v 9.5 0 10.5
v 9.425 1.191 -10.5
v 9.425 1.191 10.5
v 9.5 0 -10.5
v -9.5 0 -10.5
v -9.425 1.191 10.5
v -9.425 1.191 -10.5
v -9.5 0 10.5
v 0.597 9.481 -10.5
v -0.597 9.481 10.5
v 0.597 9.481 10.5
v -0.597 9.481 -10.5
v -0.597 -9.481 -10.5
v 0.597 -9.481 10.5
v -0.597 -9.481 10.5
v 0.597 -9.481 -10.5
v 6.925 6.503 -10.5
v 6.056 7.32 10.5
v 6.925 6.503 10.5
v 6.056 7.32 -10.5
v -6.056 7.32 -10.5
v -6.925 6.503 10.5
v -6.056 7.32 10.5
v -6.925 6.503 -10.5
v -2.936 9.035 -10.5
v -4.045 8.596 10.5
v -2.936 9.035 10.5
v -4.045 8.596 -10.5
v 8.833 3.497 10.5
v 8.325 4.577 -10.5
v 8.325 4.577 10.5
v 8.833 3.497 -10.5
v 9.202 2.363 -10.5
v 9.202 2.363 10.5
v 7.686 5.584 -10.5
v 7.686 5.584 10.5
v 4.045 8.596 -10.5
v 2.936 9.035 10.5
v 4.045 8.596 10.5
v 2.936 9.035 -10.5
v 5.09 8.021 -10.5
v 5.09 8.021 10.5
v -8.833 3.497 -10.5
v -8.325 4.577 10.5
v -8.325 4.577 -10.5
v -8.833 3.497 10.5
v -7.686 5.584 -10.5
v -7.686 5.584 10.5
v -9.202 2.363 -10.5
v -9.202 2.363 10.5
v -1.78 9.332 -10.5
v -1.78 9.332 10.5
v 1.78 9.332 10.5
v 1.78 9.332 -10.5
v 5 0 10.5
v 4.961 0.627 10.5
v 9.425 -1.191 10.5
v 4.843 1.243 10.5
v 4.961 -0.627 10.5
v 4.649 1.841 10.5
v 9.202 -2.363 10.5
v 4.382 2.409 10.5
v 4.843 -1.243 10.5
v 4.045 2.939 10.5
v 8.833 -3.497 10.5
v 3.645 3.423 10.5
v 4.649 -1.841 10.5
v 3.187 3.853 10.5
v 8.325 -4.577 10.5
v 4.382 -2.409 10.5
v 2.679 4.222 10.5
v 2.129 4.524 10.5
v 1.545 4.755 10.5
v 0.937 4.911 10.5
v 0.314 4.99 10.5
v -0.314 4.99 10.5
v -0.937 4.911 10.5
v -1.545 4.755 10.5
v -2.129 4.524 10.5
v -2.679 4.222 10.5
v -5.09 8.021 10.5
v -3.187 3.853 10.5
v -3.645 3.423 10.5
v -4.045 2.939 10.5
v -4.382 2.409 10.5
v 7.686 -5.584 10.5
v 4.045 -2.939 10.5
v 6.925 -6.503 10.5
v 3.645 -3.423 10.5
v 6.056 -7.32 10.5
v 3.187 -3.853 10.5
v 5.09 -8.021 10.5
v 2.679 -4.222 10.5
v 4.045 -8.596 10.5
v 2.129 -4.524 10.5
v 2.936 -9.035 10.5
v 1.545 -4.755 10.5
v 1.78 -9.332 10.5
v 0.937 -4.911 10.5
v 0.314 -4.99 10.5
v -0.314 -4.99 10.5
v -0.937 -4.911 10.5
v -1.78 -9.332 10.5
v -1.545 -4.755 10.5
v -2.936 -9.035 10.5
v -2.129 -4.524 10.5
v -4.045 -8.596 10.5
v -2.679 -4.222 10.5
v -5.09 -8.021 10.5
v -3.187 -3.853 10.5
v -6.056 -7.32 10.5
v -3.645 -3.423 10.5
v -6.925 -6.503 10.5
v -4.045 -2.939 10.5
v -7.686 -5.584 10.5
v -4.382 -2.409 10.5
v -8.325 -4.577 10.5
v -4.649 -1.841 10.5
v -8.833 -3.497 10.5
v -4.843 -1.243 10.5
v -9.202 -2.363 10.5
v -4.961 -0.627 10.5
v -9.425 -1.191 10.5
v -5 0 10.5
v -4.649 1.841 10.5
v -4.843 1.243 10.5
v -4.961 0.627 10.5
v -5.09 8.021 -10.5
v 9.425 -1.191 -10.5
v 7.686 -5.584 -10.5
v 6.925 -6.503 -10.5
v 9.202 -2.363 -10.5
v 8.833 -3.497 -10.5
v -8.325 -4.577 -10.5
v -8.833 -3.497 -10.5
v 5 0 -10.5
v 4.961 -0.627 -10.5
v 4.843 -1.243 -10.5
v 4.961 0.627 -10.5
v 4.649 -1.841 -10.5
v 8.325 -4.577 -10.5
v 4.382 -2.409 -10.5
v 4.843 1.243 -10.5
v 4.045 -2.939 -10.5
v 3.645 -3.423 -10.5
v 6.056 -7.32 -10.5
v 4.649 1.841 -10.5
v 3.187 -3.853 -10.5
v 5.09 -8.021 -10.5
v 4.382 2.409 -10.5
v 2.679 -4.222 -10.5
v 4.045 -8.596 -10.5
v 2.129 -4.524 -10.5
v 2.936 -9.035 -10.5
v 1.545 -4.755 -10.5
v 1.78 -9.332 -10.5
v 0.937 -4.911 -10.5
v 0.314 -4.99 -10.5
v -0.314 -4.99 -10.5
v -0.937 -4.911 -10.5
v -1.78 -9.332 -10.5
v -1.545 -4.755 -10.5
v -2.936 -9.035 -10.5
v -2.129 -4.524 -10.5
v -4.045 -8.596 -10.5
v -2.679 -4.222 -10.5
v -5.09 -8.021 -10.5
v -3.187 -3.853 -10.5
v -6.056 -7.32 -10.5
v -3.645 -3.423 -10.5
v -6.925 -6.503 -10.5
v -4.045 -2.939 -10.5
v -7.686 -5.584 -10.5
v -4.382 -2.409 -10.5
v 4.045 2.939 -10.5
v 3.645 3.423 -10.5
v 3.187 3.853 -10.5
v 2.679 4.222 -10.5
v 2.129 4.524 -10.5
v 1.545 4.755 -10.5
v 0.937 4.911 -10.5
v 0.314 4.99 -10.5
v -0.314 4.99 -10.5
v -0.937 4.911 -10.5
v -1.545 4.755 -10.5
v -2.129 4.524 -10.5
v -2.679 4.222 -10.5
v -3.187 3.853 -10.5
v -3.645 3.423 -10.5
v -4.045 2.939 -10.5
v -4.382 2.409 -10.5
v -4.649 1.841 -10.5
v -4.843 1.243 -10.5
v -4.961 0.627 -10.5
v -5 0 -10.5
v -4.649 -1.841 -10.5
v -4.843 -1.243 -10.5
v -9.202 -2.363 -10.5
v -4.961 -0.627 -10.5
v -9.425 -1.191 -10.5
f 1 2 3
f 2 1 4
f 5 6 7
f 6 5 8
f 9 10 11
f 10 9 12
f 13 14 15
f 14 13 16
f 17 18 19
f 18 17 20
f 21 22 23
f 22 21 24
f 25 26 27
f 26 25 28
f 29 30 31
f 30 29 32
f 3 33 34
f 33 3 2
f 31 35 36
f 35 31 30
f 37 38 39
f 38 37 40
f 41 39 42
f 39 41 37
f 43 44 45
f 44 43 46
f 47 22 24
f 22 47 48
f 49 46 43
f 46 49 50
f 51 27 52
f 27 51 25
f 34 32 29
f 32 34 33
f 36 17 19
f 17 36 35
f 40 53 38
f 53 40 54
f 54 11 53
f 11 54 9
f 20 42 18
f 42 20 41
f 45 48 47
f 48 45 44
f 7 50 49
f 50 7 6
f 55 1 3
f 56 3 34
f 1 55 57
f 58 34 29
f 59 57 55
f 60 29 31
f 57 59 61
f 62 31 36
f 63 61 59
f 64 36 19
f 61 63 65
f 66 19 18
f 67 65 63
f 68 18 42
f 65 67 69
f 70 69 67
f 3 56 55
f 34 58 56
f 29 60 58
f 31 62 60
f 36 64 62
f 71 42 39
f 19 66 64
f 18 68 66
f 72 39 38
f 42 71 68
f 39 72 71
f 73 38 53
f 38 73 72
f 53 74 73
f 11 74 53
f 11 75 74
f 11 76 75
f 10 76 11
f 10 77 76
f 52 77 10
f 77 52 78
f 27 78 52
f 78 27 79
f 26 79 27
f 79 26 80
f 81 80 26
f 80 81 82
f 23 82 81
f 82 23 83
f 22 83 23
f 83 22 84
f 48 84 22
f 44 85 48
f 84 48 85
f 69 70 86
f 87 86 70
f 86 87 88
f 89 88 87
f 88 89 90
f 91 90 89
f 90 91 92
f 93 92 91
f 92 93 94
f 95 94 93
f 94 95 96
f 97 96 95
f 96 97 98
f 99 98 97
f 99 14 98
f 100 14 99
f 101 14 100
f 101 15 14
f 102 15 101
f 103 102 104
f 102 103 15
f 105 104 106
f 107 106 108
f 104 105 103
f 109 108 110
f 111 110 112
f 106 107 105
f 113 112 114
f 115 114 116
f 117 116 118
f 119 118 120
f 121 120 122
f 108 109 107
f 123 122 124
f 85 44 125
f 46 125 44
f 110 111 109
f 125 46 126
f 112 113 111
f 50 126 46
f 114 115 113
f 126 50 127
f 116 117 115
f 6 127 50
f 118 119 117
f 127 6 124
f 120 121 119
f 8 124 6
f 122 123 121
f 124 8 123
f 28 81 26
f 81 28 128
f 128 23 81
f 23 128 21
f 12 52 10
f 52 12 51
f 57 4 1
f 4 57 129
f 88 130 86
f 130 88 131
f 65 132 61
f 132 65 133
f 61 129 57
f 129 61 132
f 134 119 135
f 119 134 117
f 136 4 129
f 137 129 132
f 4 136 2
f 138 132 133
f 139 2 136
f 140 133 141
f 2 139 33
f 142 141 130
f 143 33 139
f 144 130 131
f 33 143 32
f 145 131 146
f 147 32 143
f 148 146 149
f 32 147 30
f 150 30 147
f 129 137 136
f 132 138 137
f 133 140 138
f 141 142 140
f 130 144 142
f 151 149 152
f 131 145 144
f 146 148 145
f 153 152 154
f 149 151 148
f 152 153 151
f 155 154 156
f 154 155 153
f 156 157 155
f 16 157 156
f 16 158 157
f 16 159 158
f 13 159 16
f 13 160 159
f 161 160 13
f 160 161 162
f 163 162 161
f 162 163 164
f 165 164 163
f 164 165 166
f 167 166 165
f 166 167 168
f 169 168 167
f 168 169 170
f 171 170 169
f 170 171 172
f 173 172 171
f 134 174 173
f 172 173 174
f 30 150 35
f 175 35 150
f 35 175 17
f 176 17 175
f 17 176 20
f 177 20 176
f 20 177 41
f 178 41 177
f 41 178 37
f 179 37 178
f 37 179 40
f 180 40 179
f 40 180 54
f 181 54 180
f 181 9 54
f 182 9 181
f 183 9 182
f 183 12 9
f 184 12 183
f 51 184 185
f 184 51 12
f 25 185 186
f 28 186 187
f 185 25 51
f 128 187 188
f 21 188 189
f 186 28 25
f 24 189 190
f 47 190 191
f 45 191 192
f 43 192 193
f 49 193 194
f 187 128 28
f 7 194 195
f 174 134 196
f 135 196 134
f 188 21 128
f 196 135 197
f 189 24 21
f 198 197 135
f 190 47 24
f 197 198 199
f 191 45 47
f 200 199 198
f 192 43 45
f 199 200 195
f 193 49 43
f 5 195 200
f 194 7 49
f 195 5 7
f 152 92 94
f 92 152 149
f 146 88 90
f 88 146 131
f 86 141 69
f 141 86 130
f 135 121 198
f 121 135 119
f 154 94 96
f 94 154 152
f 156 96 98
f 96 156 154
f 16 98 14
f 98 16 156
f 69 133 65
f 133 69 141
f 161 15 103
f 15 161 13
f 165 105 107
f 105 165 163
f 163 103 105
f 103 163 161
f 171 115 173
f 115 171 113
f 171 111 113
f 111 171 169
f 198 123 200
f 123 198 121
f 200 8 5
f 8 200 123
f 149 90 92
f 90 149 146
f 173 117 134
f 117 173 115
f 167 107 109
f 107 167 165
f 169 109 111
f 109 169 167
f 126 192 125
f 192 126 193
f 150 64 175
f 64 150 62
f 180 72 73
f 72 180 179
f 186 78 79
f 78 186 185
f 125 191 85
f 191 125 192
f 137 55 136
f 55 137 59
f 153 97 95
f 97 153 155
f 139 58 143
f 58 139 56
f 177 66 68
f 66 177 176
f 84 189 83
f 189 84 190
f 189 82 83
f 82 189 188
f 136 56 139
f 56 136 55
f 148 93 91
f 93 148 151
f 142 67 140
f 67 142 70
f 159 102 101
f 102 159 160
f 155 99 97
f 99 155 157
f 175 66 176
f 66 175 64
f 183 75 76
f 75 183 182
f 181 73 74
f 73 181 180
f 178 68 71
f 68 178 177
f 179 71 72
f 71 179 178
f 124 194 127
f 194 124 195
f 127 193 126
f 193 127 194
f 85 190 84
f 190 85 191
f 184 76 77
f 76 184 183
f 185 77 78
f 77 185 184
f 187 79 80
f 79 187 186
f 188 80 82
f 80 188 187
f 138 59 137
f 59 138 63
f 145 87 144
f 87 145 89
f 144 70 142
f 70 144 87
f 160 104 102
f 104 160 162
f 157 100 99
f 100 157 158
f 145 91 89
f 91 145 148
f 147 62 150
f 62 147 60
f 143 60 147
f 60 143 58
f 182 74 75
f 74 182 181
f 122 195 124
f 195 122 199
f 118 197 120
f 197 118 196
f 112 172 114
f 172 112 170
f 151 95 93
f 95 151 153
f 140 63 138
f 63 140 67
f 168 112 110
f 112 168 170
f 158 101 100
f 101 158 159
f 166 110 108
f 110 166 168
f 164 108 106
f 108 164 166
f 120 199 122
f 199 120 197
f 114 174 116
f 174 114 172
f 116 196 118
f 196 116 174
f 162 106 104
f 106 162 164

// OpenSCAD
$fn = 50;


difference() {
	union() {
		translate(v = [0, 0, -10.5000000000]) {
			cylinder(h = 21, r = 9.5000000000);
		}
	}
	union() {
		translate(v = [0, 0, -100.0000000000]) {
			cylinder(h = 200, r = 5.0000000000);
		}
	}
}
